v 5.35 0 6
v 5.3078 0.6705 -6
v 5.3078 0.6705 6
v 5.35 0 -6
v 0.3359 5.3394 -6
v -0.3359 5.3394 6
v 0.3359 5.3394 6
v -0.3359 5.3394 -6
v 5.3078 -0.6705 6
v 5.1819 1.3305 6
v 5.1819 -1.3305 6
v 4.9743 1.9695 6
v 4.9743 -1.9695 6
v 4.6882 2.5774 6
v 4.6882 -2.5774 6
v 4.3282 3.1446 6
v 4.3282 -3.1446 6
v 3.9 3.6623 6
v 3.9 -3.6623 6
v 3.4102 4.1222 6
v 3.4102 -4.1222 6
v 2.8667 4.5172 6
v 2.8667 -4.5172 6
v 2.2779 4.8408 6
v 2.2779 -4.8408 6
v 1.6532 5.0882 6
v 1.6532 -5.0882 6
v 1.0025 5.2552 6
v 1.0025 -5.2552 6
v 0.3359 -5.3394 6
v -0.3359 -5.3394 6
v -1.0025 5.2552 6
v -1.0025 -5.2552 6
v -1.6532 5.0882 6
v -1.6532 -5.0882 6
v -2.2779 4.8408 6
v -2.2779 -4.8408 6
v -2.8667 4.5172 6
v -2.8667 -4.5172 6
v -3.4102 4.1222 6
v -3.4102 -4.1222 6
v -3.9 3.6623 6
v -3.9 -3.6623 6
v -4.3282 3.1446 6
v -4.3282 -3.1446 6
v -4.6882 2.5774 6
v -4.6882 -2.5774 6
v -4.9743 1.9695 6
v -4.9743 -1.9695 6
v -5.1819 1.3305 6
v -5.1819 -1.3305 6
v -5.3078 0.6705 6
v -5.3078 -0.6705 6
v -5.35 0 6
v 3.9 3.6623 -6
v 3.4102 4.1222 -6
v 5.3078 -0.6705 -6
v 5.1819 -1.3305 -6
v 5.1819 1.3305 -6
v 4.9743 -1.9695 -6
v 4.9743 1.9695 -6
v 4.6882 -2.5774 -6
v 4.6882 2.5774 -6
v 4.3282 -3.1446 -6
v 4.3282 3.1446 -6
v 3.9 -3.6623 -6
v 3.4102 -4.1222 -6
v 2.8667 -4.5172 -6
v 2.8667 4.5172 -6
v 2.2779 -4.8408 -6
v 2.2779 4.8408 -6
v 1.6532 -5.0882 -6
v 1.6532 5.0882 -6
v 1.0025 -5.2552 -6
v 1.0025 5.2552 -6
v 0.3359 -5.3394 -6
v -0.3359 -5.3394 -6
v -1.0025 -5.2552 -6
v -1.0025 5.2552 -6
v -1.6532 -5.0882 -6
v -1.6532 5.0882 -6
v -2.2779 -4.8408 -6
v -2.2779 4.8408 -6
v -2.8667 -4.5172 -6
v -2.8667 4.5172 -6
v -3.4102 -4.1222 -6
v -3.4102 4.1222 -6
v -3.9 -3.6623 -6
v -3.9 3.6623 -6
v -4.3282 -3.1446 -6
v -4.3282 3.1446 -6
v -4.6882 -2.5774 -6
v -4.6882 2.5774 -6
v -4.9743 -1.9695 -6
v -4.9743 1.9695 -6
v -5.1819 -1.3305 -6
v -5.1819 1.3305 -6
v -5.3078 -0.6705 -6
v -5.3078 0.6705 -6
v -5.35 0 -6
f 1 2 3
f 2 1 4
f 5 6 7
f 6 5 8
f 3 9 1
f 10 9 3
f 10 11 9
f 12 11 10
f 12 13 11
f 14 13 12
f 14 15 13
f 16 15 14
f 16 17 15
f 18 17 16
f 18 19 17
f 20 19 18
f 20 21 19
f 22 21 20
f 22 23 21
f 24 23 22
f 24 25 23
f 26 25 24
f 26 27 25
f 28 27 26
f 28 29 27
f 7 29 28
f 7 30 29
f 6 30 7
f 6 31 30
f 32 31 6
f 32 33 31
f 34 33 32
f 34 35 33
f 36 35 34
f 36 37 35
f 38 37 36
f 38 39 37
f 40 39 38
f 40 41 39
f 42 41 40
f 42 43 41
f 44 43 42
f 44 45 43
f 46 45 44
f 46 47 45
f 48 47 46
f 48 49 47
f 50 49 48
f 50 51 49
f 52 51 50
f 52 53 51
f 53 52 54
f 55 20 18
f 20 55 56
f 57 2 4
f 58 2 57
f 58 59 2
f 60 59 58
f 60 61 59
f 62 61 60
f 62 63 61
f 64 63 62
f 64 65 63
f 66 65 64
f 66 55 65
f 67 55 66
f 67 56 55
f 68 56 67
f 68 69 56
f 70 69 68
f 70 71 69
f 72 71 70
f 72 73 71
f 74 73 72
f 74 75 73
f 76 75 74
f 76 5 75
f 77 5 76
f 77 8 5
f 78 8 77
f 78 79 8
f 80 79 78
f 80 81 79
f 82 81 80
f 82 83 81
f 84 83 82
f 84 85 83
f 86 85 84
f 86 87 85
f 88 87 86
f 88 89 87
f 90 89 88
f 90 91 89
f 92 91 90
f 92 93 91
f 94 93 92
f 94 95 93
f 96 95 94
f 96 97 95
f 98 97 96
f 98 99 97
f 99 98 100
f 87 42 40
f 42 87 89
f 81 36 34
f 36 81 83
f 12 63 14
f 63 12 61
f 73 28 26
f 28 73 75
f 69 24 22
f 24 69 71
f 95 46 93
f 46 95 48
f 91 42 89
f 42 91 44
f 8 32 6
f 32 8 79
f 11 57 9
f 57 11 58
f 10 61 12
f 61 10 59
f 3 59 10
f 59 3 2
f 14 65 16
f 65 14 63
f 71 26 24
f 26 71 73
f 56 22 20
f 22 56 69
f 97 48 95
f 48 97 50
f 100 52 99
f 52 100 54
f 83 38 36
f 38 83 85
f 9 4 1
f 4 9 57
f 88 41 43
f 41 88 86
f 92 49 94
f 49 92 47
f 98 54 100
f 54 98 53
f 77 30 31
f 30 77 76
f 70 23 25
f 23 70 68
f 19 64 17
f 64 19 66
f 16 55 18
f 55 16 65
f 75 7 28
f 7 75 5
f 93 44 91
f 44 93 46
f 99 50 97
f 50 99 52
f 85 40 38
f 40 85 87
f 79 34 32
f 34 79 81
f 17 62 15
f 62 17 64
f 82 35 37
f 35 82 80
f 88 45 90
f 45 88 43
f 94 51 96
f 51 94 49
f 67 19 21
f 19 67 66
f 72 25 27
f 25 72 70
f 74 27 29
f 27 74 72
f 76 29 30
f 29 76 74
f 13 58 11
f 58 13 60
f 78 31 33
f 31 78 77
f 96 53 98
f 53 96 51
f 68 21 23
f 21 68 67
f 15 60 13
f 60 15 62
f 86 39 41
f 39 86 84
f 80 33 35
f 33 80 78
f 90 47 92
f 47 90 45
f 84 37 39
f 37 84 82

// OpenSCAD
$fn = 50;


difference() {
	union() {
		translate(v = [0, 0, -6.0000000000]) {
			cylinder(h = 12, r = 5.3500000000);
		}
	}
	union() {
		translate(v = [0, 0, -100.0000000000]) {
			cylinder(h = 200, r = 0);
		}
	}
}
